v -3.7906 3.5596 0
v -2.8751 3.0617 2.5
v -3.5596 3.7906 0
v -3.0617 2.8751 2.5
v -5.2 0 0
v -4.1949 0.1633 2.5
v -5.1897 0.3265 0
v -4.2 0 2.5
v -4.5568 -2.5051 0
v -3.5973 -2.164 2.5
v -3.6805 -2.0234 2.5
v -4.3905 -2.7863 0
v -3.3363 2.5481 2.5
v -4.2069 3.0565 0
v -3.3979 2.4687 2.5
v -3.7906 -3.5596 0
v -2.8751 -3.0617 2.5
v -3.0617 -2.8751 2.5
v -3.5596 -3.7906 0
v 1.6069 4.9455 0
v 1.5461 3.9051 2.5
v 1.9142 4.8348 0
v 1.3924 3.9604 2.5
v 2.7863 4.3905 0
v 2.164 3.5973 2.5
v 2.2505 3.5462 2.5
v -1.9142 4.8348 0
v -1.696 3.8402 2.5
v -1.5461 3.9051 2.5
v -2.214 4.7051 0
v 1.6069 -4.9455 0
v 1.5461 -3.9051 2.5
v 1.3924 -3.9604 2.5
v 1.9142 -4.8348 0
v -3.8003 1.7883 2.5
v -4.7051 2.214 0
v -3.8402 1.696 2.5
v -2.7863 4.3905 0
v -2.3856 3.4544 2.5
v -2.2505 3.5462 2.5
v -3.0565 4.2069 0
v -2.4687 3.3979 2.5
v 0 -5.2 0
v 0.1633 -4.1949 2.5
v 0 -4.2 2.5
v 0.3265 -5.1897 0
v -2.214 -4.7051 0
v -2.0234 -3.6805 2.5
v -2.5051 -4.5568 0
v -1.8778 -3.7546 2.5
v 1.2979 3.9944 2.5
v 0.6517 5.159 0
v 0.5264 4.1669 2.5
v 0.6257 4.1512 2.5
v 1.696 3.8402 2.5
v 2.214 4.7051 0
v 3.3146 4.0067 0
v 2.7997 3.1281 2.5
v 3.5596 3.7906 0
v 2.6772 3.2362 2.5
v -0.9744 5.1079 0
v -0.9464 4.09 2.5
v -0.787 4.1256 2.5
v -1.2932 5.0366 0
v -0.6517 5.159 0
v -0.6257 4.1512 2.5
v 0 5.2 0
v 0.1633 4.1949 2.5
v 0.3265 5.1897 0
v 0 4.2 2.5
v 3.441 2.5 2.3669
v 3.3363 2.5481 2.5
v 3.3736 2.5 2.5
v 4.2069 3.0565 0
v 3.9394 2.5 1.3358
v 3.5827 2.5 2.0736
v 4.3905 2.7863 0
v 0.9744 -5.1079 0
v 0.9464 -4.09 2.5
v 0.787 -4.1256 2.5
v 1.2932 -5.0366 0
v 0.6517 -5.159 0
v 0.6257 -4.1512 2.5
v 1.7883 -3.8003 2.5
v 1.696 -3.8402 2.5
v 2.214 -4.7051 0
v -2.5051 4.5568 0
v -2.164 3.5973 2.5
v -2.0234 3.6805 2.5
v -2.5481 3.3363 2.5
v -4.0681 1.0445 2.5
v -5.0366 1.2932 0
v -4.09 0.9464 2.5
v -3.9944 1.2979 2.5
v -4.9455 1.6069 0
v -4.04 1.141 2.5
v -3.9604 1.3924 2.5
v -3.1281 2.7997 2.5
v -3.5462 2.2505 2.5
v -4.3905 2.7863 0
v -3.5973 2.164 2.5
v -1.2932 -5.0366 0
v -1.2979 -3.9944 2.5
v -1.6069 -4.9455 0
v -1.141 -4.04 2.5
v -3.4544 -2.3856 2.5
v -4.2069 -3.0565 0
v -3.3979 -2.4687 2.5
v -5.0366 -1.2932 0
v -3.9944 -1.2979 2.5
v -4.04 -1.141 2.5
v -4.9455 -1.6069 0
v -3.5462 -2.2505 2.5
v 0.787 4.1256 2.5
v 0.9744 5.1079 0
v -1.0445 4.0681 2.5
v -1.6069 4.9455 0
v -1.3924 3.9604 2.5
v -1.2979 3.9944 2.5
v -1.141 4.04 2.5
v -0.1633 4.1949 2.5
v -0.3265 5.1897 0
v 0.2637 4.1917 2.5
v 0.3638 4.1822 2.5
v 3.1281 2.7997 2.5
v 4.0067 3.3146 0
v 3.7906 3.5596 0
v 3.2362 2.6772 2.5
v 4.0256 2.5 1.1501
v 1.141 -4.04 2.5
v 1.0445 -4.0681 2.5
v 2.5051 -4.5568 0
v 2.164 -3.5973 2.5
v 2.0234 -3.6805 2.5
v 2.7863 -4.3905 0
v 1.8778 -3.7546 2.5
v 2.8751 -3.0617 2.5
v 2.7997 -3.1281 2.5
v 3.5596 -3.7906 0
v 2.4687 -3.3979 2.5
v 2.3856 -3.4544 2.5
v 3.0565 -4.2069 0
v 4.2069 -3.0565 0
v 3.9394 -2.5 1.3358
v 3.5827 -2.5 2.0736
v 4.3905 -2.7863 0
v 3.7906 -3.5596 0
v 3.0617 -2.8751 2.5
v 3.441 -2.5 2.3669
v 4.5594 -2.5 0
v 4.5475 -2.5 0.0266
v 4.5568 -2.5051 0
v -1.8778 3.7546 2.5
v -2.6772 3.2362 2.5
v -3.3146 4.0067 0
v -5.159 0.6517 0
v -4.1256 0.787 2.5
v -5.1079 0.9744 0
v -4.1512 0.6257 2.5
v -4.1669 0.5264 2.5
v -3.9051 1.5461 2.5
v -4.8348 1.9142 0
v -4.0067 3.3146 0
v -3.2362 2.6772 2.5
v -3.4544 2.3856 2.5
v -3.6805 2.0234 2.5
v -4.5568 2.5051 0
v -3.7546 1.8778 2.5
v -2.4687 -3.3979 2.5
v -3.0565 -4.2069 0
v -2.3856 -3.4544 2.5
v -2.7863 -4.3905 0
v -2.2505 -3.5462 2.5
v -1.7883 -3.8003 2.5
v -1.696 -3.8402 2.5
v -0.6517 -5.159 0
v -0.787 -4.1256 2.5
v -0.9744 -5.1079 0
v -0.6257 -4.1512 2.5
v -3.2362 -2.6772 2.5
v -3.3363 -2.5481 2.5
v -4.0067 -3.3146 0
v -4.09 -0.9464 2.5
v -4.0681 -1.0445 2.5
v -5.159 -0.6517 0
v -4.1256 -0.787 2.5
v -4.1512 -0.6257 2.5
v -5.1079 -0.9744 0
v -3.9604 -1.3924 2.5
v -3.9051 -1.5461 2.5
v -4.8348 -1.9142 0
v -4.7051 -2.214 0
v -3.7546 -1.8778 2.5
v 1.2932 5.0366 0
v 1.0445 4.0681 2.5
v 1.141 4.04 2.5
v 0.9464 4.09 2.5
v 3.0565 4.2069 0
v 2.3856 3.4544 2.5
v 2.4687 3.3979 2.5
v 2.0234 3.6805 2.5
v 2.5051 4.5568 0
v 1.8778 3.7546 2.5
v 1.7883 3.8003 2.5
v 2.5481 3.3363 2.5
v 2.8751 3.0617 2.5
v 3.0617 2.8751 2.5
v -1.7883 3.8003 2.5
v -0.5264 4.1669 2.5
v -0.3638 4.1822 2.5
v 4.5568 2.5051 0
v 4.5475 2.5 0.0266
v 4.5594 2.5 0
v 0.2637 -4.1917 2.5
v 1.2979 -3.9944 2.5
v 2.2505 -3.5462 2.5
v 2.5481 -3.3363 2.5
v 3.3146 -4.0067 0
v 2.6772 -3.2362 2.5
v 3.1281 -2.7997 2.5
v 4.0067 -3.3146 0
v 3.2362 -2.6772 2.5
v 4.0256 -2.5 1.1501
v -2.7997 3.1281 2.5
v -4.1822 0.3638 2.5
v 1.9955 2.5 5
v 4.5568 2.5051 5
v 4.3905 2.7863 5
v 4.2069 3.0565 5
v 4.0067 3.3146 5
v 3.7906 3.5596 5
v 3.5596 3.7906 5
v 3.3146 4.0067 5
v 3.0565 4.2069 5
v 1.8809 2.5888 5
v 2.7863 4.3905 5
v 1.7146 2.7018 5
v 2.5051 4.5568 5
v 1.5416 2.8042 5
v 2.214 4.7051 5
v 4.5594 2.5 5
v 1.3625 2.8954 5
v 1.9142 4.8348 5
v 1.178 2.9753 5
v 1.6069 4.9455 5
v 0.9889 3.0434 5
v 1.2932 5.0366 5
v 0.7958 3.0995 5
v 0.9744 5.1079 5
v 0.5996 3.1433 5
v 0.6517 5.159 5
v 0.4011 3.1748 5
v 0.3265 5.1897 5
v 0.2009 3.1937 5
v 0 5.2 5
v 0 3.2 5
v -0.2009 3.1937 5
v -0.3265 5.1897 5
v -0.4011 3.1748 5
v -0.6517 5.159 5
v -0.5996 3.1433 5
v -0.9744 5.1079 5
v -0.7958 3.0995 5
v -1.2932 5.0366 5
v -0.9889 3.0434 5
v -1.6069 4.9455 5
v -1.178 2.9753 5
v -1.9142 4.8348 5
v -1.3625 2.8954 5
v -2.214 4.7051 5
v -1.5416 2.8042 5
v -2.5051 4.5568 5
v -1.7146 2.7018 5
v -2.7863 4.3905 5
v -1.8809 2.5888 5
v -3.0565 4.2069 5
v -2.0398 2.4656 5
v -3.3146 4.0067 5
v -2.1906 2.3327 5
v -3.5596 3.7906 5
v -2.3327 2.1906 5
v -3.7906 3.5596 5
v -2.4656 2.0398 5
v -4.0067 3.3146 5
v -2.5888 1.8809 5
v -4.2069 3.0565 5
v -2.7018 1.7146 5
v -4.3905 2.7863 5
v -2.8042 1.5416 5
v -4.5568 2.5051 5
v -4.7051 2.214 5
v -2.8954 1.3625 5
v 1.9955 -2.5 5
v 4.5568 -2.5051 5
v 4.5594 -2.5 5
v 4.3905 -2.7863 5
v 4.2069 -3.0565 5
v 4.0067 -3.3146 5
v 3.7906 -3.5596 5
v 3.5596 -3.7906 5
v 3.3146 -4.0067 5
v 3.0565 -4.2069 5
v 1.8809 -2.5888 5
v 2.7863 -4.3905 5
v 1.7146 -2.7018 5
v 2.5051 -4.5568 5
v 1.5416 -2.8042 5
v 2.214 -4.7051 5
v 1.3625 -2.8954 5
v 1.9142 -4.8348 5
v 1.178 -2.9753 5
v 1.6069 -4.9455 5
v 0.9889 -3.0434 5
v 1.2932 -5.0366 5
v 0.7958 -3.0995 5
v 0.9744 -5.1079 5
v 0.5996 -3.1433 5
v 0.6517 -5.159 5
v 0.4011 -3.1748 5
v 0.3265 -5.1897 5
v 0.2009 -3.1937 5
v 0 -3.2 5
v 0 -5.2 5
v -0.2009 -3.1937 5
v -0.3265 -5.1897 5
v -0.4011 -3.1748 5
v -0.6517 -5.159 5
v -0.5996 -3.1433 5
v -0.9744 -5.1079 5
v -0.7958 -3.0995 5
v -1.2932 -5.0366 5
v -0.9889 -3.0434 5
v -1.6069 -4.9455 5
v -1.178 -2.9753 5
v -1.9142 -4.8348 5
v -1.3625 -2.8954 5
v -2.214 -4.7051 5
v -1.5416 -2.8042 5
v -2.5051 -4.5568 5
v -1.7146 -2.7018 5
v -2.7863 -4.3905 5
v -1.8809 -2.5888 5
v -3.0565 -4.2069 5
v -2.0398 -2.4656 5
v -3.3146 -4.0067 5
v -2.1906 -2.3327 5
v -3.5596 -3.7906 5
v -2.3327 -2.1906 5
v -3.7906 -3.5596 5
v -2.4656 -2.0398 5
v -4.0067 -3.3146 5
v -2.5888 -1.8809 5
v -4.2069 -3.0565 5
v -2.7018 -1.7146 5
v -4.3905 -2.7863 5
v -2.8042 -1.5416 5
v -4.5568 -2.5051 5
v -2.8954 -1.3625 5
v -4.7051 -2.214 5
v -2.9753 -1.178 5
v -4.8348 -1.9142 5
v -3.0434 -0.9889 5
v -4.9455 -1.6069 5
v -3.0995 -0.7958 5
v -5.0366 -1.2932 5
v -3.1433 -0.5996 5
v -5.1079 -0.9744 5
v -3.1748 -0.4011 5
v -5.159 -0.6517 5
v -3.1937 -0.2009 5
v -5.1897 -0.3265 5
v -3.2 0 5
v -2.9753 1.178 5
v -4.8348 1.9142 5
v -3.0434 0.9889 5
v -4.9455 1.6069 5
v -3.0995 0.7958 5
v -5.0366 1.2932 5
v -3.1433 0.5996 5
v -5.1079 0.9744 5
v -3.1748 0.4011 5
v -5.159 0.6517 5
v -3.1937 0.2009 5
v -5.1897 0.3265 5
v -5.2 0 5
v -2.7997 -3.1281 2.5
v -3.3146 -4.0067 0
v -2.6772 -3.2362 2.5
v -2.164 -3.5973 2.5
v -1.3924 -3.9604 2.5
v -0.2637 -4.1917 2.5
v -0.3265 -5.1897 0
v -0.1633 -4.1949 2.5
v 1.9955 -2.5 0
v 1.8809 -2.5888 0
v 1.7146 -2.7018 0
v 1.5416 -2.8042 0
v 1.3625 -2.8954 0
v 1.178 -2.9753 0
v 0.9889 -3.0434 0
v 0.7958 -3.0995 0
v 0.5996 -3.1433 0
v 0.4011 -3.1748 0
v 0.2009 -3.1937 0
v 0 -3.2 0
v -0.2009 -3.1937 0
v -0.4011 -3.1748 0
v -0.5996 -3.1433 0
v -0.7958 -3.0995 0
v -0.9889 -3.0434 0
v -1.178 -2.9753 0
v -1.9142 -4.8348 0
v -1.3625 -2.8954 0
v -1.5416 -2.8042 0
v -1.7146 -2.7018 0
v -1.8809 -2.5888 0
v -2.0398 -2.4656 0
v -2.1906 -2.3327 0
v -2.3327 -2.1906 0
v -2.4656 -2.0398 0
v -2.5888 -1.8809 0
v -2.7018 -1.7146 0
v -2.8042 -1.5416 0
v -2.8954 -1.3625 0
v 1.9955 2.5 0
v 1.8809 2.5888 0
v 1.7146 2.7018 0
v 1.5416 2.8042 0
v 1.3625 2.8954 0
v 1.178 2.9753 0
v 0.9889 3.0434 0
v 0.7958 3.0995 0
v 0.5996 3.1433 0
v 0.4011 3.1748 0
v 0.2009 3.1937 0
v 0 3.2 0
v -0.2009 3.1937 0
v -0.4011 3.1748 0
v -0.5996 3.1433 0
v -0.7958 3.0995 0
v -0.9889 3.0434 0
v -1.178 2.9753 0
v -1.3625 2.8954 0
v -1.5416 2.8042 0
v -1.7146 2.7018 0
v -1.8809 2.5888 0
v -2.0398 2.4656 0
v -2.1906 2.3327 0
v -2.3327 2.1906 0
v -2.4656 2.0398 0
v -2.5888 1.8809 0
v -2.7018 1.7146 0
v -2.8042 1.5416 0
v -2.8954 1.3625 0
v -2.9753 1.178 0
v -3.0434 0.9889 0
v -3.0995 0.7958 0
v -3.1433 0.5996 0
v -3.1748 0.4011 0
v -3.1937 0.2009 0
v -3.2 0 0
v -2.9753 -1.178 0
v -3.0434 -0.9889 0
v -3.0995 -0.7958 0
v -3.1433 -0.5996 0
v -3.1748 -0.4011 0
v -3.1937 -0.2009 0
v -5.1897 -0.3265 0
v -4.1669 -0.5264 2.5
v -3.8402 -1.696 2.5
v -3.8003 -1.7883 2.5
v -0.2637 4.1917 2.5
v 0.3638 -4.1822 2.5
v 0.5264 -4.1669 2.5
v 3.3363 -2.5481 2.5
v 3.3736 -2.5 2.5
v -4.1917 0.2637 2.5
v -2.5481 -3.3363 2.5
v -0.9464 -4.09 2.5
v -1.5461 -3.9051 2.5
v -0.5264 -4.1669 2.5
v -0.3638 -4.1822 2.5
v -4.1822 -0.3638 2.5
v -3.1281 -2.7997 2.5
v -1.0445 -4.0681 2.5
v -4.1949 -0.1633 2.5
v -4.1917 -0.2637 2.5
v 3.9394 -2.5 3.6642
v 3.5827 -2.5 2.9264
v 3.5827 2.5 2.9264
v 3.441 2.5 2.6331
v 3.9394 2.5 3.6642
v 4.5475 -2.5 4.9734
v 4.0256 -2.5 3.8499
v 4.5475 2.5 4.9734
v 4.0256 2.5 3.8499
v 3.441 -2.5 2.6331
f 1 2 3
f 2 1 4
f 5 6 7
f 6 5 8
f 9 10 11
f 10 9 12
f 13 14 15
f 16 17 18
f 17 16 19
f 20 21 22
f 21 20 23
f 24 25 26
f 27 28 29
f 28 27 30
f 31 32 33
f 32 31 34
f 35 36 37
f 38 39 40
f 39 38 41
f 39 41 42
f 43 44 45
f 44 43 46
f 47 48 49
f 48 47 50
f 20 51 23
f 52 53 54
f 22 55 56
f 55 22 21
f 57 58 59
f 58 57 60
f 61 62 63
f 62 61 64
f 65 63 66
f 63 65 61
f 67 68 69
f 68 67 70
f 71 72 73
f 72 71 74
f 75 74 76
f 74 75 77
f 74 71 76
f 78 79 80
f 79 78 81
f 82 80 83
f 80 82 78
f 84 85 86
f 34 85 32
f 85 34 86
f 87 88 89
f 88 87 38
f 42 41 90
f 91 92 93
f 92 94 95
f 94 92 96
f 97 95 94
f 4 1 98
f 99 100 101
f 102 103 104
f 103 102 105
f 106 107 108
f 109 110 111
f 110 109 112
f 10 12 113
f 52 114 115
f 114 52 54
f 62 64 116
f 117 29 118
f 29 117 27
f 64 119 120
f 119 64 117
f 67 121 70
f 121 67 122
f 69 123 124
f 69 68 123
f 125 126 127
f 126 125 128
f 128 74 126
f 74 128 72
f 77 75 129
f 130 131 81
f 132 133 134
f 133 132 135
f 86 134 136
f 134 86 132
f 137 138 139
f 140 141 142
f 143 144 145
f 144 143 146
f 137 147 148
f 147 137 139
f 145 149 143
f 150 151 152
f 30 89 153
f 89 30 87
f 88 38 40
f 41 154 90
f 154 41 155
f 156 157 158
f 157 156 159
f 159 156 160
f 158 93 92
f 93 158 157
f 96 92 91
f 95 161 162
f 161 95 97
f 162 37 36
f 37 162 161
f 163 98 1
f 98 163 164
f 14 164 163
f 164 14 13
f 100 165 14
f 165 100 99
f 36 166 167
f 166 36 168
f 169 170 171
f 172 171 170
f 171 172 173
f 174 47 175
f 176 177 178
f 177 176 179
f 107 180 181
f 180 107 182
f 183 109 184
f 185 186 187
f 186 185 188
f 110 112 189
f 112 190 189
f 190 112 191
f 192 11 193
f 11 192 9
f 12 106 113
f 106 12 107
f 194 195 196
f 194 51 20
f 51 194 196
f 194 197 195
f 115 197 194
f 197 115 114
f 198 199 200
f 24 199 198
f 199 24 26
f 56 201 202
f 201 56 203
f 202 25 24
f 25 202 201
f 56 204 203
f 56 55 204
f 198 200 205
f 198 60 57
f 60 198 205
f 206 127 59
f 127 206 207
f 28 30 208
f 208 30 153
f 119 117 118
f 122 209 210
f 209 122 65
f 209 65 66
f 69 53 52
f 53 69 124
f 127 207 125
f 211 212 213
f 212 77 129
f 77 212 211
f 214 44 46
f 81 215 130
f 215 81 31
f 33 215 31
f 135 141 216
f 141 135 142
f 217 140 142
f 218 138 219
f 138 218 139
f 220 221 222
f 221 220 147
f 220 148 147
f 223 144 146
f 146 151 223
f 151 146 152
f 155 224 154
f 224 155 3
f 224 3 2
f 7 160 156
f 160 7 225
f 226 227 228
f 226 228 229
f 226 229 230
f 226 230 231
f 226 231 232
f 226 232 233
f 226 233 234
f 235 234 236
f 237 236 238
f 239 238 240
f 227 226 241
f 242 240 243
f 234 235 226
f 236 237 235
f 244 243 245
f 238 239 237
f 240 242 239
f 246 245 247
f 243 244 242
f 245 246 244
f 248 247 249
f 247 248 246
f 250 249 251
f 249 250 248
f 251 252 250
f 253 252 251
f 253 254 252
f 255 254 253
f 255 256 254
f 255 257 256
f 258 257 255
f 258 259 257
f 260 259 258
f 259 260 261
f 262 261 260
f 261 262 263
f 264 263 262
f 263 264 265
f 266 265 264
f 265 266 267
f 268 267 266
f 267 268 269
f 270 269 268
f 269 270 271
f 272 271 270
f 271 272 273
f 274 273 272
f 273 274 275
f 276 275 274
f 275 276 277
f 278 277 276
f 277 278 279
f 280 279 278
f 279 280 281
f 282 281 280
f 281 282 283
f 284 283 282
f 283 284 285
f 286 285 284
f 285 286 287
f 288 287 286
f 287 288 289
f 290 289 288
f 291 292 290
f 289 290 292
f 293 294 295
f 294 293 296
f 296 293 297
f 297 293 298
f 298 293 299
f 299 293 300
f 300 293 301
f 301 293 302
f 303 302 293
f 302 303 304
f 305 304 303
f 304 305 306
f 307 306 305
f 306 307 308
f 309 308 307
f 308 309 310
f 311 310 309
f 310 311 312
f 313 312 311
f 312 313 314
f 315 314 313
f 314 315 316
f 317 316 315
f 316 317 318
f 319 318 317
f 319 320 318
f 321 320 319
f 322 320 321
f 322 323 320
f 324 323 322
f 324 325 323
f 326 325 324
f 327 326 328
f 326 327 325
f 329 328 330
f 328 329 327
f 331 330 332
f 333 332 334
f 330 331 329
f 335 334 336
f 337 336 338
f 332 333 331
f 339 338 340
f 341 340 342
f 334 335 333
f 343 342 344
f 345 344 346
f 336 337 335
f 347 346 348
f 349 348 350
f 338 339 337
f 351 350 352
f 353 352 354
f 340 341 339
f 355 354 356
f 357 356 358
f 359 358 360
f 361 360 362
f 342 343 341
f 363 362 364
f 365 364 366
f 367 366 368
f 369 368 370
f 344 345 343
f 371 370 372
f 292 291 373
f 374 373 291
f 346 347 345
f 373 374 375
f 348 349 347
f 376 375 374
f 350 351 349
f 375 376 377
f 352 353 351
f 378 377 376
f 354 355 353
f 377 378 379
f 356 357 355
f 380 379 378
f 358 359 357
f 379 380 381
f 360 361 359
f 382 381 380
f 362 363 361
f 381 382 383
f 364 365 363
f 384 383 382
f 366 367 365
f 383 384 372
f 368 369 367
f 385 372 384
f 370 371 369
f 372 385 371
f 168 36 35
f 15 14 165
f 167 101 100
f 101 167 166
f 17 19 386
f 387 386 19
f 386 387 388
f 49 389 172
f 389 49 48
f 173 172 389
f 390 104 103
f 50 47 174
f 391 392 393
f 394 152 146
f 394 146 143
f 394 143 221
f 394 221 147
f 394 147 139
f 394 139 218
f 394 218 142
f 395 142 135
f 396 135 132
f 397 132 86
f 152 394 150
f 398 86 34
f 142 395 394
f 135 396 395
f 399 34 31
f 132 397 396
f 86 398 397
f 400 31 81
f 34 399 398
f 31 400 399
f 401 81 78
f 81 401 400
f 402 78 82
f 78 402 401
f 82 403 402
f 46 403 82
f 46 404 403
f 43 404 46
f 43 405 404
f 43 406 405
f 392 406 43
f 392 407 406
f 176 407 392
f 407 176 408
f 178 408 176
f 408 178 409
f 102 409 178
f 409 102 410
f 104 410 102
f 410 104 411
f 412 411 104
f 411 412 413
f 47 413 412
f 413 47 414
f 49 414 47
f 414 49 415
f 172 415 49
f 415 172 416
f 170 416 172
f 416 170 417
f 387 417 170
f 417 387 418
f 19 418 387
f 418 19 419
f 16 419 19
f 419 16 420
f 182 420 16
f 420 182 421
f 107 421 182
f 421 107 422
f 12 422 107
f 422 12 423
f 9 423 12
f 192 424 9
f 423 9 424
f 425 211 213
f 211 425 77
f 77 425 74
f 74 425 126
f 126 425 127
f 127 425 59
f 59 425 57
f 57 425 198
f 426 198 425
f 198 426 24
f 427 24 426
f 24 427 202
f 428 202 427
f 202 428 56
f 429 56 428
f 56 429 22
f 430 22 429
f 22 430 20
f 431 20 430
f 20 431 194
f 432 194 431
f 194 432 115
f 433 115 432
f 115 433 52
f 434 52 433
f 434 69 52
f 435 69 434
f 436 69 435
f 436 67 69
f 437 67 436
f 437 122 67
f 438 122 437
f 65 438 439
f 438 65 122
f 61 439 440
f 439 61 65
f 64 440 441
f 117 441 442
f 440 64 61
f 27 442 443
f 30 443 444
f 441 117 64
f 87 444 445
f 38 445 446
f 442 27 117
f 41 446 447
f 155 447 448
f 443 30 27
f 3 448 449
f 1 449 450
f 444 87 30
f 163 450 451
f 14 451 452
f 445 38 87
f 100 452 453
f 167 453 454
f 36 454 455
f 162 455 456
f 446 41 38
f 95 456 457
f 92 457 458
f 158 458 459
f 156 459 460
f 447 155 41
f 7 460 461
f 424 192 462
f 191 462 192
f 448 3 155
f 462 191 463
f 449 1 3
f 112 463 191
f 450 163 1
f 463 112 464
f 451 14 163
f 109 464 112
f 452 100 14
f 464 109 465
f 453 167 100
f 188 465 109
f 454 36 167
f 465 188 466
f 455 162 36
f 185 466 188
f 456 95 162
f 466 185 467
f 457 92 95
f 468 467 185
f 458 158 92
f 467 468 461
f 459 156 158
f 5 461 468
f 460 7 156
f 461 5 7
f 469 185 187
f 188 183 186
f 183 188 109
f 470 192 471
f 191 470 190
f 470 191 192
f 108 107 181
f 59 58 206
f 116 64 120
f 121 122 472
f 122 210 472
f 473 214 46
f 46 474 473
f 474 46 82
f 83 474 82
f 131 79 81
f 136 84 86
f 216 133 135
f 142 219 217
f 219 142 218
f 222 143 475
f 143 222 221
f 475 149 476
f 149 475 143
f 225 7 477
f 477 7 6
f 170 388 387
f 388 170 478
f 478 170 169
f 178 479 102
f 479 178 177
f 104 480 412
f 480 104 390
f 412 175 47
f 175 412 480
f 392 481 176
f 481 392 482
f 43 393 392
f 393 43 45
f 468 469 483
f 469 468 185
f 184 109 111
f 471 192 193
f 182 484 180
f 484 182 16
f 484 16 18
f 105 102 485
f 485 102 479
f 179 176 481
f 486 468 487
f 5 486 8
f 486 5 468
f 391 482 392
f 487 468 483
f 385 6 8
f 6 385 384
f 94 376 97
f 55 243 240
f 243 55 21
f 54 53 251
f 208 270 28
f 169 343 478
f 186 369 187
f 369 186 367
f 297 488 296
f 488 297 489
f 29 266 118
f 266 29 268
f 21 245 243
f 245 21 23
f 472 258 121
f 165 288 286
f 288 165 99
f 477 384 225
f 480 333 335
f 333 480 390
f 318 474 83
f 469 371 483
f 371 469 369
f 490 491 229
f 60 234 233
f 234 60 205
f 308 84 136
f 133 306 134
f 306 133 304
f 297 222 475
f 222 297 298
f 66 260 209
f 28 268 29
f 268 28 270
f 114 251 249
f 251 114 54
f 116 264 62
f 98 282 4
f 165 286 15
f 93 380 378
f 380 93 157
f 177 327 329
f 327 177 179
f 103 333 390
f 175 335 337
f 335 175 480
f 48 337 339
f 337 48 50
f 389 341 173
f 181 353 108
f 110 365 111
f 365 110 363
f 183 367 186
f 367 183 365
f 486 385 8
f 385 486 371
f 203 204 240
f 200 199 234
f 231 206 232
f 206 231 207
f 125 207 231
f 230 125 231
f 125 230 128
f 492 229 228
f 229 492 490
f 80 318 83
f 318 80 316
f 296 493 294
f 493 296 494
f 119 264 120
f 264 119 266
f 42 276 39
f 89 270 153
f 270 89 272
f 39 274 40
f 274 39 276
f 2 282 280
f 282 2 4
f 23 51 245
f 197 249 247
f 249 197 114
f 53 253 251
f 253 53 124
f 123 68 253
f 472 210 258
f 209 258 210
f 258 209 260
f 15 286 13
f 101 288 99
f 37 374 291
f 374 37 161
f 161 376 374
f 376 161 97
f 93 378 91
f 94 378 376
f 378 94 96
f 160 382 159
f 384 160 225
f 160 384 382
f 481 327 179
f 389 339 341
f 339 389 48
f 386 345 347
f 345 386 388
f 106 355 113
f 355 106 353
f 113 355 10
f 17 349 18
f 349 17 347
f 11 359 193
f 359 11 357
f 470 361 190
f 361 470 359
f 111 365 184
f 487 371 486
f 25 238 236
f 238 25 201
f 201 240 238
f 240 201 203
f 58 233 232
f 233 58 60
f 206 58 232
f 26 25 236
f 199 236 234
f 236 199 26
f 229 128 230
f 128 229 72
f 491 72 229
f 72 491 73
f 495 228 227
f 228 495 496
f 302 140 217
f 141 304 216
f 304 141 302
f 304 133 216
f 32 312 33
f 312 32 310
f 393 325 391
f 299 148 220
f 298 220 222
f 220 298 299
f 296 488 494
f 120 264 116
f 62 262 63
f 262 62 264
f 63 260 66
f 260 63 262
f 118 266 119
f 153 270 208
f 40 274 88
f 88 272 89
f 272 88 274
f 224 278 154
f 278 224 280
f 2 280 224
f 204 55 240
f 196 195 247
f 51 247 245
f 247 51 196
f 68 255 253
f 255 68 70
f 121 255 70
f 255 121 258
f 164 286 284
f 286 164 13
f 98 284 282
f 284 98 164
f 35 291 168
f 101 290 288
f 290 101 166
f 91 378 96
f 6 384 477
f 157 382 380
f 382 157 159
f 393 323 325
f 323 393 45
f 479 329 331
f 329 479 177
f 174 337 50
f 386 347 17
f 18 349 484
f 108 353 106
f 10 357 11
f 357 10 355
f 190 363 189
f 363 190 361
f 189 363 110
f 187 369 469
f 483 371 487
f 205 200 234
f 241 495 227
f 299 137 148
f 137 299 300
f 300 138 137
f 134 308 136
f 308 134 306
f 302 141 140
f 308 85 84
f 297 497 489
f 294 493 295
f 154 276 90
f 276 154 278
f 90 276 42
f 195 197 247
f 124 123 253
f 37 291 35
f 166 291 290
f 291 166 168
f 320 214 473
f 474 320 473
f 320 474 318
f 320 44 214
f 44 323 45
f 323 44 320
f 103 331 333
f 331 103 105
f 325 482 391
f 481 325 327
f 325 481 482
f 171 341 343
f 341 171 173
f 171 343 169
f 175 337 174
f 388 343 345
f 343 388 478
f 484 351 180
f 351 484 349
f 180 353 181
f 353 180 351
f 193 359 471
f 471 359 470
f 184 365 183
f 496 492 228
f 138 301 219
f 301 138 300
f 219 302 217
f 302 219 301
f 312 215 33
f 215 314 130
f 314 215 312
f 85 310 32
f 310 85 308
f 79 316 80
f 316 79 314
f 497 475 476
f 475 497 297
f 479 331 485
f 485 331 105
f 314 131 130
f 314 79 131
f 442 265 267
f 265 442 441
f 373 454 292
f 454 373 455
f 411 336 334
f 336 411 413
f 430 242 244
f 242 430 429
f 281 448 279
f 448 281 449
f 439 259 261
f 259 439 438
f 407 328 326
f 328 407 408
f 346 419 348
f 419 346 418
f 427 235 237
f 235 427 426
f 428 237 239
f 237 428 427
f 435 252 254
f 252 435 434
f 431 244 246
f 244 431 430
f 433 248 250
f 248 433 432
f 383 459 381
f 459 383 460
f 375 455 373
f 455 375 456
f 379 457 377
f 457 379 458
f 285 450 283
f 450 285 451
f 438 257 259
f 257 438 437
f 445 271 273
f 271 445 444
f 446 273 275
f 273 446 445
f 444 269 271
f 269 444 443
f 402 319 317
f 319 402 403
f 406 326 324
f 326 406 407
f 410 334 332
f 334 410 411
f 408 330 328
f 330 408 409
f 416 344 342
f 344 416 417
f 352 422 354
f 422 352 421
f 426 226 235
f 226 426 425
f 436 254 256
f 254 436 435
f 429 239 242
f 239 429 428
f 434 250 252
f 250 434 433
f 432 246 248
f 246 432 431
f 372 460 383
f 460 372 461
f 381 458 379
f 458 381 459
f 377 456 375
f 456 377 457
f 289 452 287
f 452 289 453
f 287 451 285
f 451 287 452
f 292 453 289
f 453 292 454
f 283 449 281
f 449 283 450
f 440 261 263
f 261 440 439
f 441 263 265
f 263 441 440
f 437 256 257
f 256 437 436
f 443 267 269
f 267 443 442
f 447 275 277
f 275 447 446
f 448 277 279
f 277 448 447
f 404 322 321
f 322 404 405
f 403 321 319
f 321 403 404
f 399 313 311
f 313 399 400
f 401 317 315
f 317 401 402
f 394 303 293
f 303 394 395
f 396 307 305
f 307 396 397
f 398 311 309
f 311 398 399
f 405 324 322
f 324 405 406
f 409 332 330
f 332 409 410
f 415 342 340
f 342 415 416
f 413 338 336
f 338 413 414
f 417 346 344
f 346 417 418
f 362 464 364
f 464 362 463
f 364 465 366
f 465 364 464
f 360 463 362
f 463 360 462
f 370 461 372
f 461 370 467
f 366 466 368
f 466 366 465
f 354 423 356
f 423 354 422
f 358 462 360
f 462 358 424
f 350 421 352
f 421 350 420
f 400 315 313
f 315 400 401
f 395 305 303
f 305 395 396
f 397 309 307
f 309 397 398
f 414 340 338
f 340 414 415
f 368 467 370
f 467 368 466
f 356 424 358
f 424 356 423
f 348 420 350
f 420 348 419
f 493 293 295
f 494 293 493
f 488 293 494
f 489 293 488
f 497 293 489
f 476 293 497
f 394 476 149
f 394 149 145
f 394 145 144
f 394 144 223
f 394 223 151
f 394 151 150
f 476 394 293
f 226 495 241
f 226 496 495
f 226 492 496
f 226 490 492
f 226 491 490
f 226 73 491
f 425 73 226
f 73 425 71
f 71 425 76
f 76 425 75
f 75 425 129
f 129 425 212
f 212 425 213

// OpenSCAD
$fn = 100;


h = 5;
r1 = 5.2;
r2 = 3.2;

module mount(){
    difference(){
        difference(){
            union(){
                cylinder(h, r1, r2, true);
                rotate([0,180,0])
                cylinder(h, r1, r2, true);
            }
            cylinder(h+2, r2, r2, true);
        }
        translate([5,0,0])
        cube([10,5,6], true);
    }
}

translate([0,0,2.5])
mount();
